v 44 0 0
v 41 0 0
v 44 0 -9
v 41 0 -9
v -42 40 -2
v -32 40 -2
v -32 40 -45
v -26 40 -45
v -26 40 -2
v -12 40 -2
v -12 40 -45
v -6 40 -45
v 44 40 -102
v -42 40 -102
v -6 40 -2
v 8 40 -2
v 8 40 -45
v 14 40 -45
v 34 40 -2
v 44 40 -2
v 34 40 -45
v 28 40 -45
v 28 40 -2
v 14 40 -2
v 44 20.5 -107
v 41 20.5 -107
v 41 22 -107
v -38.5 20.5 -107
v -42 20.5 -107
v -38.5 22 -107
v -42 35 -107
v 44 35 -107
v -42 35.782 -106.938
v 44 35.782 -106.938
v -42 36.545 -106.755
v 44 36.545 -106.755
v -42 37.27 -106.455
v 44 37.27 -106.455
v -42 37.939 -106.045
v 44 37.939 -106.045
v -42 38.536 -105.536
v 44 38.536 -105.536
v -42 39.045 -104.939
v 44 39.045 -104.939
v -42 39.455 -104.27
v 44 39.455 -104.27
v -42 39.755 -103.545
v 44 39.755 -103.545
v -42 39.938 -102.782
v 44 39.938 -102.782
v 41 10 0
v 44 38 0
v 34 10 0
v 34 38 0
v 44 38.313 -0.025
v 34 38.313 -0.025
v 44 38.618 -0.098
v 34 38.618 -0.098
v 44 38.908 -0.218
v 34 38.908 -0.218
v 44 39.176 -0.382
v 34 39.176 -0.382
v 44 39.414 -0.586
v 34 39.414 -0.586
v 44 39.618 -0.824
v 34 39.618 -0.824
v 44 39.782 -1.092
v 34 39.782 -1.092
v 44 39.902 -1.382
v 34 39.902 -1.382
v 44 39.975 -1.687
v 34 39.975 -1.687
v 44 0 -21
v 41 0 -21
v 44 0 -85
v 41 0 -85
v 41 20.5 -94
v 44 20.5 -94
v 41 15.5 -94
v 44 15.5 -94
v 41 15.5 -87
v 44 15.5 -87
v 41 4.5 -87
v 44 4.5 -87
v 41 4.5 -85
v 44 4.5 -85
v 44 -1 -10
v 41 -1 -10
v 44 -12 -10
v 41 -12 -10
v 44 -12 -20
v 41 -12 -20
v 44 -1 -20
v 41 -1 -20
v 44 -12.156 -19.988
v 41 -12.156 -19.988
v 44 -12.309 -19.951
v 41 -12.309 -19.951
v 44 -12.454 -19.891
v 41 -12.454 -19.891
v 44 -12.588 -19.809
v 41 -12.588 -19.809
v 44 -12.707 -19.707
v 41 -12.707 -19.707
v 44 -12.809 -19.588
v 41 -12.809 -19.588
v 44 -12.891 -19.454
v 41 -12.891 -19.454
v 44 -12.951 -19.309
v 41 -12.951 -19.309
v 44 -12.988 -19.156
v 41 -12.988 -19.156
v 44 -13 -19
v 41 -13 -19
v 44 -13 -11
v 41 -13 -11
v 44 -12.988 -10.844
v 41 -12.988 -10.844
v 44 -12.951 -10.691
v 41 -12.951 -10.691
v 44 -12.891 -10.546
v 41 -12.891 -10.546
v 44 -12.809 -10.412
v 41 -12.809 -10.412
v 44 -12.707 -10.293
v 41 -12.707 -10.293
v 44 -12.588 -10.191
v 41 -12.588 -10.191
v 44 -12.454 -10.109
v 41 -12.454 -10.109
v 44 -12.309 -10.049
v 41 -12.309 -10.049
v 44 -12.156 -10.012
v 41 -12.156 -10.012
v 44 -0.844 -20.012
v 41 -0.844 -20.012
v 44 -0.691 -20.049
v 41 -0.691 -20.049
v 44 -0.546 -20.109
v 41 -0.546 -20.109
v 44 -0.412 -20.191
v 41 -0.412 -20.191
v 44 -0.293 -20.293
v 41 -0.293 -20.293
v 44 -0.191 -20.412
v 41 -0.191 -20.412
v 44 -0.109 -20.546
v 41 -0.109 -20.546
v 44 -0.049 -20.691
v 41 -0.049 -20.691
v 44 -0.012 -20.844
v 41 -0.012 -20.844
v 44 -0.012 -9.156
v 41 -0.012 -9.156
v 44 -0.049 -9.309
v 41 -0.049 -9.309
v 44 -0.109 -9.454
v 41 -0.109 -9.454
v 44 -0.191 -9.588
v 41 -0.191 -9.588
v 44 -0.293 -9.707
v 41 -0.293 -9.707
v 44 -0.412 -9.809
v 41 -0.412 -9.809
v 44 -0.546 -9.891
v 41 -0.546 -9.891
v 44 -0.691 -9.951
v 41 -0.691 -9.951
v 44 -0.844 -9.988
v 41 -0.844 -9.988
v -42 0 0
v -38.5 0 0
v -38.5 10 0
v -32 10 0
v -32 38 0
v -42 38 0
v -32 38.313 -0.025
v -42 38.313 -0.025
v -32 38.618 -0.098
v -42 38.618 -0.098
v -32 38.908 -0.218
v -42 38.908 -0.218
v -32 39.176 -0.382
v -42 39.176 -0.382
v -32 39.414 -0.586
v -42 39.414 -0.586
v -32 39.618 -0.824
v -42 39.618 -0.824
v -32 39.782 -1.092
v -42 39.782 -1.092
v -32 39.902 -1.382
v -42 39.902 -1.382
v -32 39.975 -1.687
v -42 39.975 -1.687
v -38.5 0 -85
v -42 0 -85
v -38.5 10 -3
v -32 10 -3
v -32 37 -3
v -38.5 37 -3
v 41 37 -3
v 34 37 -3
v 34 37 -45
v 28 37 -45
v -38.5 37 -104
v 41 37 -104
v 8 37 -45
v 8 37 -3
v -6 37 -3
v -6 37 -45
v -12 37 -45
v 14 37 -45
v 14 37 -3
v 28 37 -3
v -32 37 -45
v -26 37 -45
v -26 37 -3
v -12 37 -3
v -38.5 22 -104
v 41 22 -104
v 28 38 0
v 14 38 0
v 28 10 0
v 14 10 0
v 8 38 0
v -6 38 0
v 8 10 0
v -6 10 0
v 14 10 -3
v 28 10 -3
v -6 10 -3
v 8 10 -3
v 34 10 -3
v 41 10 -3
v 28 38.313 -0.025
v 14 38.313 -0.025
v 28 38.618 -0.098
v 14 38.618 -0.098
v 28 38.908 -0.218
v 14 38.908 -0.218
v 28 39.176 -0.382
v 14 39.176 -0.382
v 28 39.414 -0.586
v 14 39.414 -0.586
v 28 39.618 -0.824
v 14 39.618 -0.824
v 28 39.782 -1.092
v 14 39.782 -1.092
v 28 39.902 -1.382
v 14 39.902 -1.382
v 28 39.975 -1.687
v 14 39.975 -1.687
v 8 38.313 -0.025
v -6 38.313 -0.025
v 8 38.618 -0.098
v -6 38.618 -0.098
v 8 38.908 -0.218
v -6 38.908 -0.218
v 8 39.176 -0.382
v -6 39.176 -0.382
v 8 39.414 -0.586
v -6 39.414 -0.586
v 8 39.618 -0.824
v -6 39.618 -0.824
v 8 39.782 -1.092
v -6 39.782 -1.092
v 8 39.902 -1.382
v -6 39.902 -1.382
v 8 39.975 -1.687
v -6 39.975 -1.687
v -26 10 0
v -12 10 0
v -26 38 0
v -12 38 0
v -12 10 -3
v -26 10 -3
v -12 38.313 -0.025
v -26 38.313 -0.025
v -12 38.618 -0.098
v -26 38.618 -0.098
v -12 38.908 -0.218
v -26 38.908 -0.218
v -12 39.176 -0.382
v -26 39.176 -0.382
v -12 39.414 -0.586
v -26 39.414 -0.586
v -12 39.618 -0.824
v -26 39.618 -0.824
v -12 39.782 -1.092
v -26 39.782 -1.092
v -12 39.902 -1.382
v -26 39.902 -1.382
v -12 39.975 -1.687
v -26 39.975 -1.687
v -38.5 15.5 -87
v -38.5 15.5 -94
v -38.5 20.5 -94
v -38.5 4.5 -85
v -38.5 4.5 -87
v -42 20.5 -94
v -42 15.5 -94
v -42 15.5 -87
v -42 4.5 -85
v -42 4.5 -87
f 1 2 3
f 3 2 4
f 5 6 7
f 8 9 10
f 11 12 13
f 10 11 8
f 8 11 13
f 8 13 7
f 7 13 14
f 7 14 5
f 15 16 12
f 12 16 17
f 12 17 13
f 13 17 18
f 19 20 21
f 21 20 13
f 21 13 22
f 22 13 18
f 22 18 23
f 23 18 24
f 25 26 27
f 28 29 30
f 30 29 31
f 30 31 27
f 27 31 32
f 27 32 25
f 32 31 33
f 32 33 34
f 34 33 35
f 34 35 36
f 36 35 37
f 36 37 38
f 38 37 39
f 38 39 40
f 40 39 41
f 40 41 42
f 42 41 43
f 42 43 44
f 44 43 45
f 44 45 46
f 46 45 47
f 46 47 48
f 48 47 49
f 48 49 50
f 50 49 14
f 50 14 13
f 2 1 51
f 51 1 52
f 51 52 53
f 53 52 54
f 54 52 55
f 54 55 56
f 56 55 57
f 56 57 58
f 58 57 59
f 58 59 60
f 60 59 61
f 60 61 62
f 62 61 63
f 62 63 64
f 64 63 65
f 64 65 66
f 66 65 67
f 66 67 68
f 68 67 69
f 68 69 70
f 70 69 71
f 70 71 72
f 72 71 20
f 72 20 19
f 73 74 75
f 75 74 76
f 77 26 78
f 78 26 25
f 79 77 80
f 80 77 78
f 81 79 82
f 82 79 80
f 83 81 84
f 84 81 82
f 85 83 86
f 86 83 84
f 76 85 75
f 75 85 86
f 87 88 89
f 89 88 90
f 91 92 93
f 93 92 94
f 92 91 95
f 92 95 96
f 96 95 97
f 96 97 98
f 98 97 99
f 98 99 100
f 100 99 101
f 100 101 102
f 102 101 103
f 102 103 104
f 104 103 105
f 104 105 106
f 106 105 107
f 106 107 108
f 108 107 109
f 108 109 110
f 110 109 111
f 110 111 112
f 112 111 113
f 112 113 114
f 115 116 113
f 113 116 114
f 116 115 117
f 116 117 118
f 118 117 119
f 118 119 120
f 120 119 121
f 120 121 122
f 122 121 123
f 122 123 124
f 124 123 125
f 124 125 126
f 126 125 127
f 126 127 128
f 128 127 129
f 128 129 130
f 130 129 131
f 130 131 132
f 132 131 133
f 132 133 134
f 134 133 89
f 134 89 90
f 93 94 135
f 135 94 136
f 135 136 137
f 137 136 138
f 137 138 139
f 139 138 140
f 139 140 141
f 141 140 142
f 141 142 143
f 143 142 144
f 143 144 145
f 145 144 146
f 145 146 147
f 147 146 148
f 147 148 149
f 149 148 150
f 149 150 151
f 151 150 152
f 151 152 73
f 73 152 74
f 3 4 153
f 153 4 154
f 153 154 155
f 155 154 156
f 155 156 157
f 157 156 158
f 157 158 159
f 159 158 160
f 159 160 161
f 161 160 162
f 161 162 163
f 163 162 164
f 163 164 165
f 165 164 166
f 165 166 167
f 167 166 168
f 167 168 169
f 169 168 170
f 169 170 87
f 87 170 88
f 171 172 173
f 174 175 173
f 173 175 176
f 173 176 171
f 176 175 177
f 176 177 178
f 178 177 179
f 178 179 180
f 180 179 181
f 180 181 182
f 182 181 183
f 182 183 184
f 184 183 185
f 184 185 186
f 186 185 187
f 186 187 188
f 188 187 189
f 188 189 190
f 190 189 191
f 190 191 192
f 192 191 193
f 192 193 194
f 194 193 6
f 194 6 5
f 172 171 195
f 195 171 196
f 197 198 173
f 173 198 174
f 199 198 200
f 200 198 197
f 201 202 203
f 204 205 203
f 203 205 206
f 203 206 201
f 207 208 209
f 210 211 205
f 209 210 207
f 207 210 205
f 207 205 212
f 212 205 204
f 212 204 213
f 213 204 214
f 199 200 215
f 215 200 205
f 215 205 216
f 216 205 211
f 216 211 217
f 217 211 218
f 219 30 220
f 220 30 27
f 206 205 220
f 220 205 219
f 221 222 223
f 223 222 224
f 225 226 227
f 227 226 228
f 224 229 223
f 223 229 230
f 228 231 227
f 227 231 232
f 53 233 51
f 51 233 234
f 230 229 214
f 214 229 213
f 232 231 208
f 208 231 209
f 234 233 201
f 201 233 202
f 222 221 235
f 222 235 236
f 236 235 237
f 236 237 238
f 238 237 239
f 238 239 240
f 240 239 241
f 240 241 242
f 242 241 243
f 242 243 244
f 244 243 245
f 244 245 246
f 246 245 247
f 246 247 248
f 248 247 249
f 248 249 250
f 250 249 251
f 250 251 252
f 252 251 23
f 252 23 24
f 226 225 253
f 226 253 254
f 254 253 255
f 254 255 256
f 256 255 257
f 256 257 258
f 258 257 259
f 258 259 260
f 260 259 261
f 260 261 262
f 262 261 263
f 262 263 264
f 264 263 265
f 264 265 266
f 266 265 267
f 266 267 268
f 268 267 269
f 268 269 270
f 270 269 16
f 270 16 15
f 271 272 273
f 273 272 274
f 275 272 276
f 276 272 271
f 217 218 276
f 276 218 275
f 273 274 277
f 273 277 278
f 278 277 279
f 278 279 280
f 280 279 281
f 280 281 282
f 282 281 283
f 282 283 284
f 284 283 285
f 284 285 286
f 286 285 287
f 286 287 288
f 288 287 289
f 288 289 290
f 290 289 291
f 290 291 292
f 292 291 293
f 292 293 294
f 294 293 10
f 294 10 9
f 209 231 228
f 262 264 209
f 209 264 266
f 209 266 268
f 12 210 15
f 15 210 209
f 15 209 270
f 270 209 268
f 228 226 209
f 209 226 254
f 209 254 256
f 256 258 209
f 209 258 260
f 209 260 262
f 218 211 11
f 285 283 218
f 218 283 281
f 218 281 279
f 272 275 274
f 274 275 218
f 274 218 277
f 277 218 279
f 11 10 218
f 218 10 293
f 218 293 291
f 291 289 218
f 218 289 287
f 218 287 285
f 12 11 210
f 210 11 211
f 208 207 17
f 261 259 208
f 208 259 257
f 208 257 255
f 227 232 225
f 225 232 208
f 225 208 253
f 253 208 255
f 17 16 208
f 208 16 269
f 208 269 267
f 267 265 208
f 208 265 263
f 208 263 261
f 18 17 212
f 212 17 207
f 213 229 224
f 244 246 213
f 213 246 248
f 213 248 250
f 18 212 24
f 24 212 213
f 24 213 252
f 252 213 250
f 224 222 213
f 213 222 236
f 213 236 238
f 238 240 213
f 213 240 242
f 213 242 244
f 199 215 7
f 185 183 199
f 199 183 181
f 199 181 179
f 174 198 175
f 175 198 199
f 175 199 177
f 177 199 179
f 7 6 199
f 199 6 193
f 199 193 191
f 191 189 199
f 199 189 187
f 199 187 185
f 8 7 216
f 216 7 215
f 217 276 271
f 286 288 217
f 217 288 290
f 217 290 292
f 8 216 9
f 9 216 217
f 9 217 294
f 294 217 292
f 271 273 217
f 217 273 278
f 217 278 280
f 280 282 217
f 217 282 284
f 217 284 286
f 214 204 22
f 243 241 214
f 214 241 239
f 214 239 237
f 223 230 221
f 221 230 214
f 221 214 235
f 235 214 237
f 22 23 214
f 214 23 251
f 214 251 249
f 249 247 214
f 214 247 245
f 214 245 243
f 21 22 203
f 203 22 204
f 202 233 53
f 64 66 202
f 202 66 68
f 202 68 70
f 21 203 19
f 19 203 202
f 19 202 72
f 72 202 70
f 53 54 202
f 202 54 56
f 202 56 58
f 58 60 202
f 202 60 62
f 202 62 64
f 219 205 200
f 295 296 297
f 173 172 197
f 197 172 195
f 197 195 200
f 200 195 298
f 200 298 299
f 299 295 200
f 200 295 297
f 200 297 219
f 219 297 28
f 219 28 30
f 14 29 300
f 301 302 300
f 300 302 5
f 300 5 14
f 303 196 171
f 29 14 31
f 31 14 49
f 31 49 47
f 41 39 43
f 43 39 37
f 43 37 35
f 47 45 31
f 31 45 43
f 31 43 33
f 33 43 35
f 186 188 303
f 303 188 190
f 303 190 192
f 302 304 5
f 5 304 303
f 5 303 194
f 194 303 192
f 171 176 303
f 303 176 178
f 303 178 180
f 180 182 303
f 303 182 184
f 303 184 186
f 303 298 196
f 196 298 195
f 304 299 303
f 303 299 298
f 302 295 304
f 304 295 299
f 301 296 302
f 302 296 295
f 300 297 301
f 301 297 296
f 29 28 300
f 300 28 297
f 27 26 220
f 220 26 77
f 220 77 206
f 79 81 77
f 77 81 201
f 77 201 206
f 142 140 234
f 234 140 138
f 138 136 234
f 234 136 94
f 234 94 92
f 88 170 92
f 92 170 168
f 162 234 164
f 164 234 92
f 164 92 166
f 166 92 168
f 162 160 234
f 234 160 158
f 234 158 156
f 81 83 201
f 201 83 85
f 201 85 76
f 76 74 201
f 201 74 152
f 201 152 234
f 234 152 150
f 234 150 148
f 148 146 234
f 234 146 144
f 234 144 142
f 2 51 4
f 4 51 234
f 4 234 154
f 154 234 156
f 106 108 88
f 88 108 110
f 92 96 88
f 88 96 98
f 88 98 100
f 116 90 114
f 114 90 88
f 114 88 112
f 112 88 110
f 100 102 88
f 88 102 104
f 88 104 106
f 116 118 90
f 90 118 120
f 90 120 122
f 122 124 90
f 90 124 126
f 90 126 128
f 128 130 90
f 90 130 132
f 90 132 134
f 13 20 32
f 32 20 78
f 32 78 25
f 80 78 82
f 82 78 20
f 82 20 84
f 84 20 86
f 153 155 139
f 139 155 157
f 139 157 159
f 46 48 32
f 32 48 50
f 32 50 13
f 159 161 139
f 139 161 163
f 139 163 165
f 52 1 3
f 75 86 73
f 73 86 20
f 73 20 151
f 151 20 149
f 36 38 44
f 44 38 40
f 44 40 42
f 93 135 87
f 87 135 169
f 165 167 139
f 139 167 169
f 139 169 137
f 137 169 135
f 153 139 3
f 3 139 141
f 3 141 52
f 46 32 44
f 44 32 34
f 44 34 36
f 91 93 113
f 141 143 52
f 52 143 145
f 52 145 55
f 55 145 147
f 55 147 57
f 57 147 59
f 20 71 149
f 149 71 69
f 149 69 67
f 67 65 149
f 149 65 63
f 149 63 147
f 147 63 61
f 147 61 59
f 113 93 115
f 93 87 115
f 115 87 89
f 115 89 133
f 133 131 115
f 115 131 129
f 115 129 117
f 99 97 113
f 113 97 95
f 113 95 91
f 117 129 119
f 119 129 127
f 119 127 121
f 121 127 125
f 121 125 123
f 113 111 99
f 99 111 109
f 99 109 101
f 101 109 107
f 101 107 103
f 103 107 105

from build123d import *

# Parameters (mm, degrees)
SALIENTE_EXTRUIR1_DEPTH = 107
CROQUIS2_W              = 90
CROQUIS2_H              = 18
SALIENTE_EXTRUIR2_DEPTH = 3
CROQUIS4_W              = 90
CROQUIS4_H              = 30
SALIENTE_EXTRUIR3_DEPTH = 3
REDONDEO3_R             = 2
CROQUIS3_W              = 6
CROQUIS3_H              = 45
CORTAR_EXTRUIR1_DEPTH   = 123.776219196
REDONDEO1_R             = 5
SALIENTE_EXTRUIR4_DEPTH = 3.5
CORTAR_EXTRUIR3_START   = -3
CORTAR_EXTRUIR3_DEPTH   = 3
CORTAR_EXTRUIR4_DEPTH   = 144.589693223
SALIENTE_EXTRUIR5_DEPTH = 3
REDONDEO4_R             = 1
SALIENTE_EXTRUIR6_DEPTH = 1
CORTAR_EXTRUIR6_DEPTH   = 1


with BuildPart() as part:
    # Croquis1 → Saliente-Extruir1 (new body)
    with BuildSketch(Plane.XY):
        Polygon((-42, 0), (-45, 0), (-45, 40), (45, 40), (45, 0), (42, 0), (42, 37), (-42, 37), align=None)
    extrude(amount=-SALIENTE_EXTRUIR1_DEPTH)

    # Croquis2 → Saliente-Extruir2 (add)
    with BuildSketch(Plane(origin=(0, 0, -107), x_dir=(-1, 0, 0), z_dir=(0, 0, -1))):
        with Locations((0, 31)):
            Rectangle(CROQUIS2_W, CROQUIS2_H)
    extrude(amount=-SALIENTE_EXTRUIR2_DEPTH)

    # Croquis4 → Saliente-Extruir3 (add)
    with BuildSketch(Plane.XY):
        with Locations((0, 25)):
            Rectangle(CROQUIS4_W, CROQUIS4_H)
    extrude(amount=-SALIENTE_EXTRUIR3_DEPTH)

    # Redondeo3
    redondeo3_edges = [part.edges().sort_by_distance(p)[0] for p in [
        (0, 40, 0),
    ]]
    fillet(redondeo3_edges, radius=REDONDEO3_R)

    # Croquis3 → Cortar-Extruir1 (cut, through all)
    with BuildSketch(Plane(origin=(0, 40, 0), x_dir=(1, 0, 0), z_dir=(0, 1, 0))):
        with Locations((-9, 22.5)):
            Rectangle(CROQUIS3_W, CROQUIS3_H)
        with Locations((11, 22.5)):
            Rectangle(CROQUIS3_W, CROQUIS3_H)
        with Locations((-29, 22.5)):
            Rectangle(CROQUIS3_W, CROQUIS3_H)
        with Locations((31, 22.5)):
            Rectangle(CROQUIS3_W, CROQUIS3_H)
    extrude(amount=-CORTAR_EXTRUIR1_DEPTH, mode=Mode.SUBTRACT)

    # Redondeo1
    redondeo1_edges = [part.edges().sort_by_distance(p)[0] for p in [
        (0, 40, -107),
    ]]
    fillet(redondeo1_edges, radius=REDONDEO1_R)

    # Croquis6 → Saliente-Extruir4 (add)
    with BuildSketch(Plane(origin=(-42, 0, 0), x_dir=(0, 0, -1), z_dir=(1, 0, 0))):
        Polygon((3, 10), (0, 10), (0, 0), (107, 0), (107, 22), (104, 22), (104, 37), (3, 37), align=None)
    extrude(amount=SALIENTE_EXTRUIR4_DEPTH)

    # Croquis7 → Cortar-Extruir3 (cut)
    with BuildSketch(Plane.ZY.offset(45).offset(CORTAR_EXTRUIR3_START)):
        with BuildLine():
            Line((-2, 40), (-102, 40))
            ThreePointArc((-102, 40), (-105.535533906, 38.535533906), (-107, 35))
            Line((-107, 35), (-107, 0))
            Line((-107, 0), (0, 0))
            Line((0, 0), (0, 38))
            ThreePointArc((0, 38), (-0.585786438, 39.414213562), (-2, 40))
        make_face()
    extrude(amount=CORTAR_EXTRUIR3_DEPTH, mode=Mode.SUBTRACT)

    # Croquis8 → Cortar-Extruir4 (cut, through all)
    with BuildSketch(Plane.ZY.offset(42)):
        Polygon((-107, 0), (-94, 0), (-87, 0), (-85, 0), (-85, 4.5), (-87, 4.5), (-87, 15.5), (-94, 15.5), (-94, 20.5), (-107, 20.5), align=None)
    extrude(amount=-CORTAR_EXTRUIR4_DEPTH, mode=Mode.SUBTRACT)

    # Croquis9 → Saliente-Extruir5 (add)
    with BuildSketch(Plane(origin=(45, 0, 0), x_dir=(0, 0, -1), z_dir=(1, 0, 0))):
        with BuildLine():
            Line((10, 0), (20, 0))
            Line((20, 0), (20, -12))
            ThreePointArc((20, -12), (19.707106781, -12.707106781), (19, -13))
            Line((19, -13), (11, -13))
            ThreePointArc((11, -13), (10.292893219, -12.707106781), (10, -12))
            Line((10, -12), (10, 0))
        make_face()
    extrude(amount=-SALIENTE_EXTRUIR5_DEPTH)

    # Redondeo4
    redondeo4_edges = [part.edges().sort_by_distance(p)[0] for p in [
        (43.5, 0, -10),
        (43.5, 0, -20),
    ]]
    fillet(redondeo4_edges, radius=REDONDEO4_R)

    # Croquis11 → Saliente-Extruir6 (add)
    with BuildSketch(Plane.ZY.offset(-42)):
        with BuildLine():
            Line((-107, 20.5), (-94, 20.5))
            Line((-94, 20.5), (-94, 15.5))
            Line((-94, 15.5), (-87, 15.5))
            Line((-87, 15.5), (-87, 4.5))
            Line((-87, 4.5), (-85, 4.5))
            Line((-85, 4.5), (-85, 0))
            Line((-85, 0), (-21, 0))
            ThreePointArc((-21, 0), (-20.292893219, -0.292893219), (-20, -1))
            Line((-20, -1), (-20, -12))
            ThreePointArc((-20, -12), (-19.707106781, -12.707106781), (-19, -13))
            Line((-19, -13), (-11, -13))
            ThreePointArc((-11, -13), (-10.292893219, -12.707106781), (-10, -12))
            Line((-10, -12), (-10, -1))
            ThreePointArc((-10, -1), (-9.707106781, -0.292893219), (-9, 0))
            Line((-9, 0), (0, 0))
            Line((0, 0), (0, 10))
            Line((0, 10), (-3, 10))
            Line((-3, 10), (-3, 37))
            Line((-3, 37), (-104, 37))
            Line((-104, 37), (-104, 22))
            Line((-104, 22), (-107, 22))
            Line((-107, 22), (-107, 20.5))
        make_face()
    extrude(amount=SALIENTE_EXTRUIR6_DEPTH)

    # Croquis12 → Cortar-Extruir6 (cut)
    with BuildSketch(Plane(origin=(45, 0, 0), x_dir=(0, 0, -1), z_dir=(1, 0, 0))):
        with BuildLine():
            Line((94, 20.5), (107, 20.5))
            Line((107, 20.5), (107, 35))
            ThreePointArc((107, 35), (105.535533906, 38.535533906), (102, 40))
            Line((102, 40), (2, 40))
            ThreePointArc((2, 40), (0.585786438, 39.414213562), (0, 38))
            Line((0, 38), (0, 0))
            Line((0, 0), (9, 0))
            ThreePointArc((9, 0), (9.707106781, -0.292893219), (10, -1))
            Line((10, -1), (10, -12))
            ThreePointArc((10, -12), (10.292893219, -12.707106781), (11, -13))
            Line((11, -13), (19, -13))
            ThreePointArc((19, -13), (19.707106781, -12.707106781), (20, -12))
            Line((20, -12), (20, -1))
            ThreePointArc((20, -1), (20.292893219, -0.292893219), (21, 0))
            Line((21, 0), (85, 0))
            Line((85, 0), (85, 4.5))
            Line((85, 4.5), (87, 4.5))
            Line((87, 4.5), (87, 15.5))
            Line((87, 15.5), (94, 15.5))
            Line((94, 15.5), (94, 20.5))
        make_face()
    extrude(amount=-CORTAR_EXTRUIR6_DEPTH, mode=Mode.SUBTRACT)


solid = part.part
